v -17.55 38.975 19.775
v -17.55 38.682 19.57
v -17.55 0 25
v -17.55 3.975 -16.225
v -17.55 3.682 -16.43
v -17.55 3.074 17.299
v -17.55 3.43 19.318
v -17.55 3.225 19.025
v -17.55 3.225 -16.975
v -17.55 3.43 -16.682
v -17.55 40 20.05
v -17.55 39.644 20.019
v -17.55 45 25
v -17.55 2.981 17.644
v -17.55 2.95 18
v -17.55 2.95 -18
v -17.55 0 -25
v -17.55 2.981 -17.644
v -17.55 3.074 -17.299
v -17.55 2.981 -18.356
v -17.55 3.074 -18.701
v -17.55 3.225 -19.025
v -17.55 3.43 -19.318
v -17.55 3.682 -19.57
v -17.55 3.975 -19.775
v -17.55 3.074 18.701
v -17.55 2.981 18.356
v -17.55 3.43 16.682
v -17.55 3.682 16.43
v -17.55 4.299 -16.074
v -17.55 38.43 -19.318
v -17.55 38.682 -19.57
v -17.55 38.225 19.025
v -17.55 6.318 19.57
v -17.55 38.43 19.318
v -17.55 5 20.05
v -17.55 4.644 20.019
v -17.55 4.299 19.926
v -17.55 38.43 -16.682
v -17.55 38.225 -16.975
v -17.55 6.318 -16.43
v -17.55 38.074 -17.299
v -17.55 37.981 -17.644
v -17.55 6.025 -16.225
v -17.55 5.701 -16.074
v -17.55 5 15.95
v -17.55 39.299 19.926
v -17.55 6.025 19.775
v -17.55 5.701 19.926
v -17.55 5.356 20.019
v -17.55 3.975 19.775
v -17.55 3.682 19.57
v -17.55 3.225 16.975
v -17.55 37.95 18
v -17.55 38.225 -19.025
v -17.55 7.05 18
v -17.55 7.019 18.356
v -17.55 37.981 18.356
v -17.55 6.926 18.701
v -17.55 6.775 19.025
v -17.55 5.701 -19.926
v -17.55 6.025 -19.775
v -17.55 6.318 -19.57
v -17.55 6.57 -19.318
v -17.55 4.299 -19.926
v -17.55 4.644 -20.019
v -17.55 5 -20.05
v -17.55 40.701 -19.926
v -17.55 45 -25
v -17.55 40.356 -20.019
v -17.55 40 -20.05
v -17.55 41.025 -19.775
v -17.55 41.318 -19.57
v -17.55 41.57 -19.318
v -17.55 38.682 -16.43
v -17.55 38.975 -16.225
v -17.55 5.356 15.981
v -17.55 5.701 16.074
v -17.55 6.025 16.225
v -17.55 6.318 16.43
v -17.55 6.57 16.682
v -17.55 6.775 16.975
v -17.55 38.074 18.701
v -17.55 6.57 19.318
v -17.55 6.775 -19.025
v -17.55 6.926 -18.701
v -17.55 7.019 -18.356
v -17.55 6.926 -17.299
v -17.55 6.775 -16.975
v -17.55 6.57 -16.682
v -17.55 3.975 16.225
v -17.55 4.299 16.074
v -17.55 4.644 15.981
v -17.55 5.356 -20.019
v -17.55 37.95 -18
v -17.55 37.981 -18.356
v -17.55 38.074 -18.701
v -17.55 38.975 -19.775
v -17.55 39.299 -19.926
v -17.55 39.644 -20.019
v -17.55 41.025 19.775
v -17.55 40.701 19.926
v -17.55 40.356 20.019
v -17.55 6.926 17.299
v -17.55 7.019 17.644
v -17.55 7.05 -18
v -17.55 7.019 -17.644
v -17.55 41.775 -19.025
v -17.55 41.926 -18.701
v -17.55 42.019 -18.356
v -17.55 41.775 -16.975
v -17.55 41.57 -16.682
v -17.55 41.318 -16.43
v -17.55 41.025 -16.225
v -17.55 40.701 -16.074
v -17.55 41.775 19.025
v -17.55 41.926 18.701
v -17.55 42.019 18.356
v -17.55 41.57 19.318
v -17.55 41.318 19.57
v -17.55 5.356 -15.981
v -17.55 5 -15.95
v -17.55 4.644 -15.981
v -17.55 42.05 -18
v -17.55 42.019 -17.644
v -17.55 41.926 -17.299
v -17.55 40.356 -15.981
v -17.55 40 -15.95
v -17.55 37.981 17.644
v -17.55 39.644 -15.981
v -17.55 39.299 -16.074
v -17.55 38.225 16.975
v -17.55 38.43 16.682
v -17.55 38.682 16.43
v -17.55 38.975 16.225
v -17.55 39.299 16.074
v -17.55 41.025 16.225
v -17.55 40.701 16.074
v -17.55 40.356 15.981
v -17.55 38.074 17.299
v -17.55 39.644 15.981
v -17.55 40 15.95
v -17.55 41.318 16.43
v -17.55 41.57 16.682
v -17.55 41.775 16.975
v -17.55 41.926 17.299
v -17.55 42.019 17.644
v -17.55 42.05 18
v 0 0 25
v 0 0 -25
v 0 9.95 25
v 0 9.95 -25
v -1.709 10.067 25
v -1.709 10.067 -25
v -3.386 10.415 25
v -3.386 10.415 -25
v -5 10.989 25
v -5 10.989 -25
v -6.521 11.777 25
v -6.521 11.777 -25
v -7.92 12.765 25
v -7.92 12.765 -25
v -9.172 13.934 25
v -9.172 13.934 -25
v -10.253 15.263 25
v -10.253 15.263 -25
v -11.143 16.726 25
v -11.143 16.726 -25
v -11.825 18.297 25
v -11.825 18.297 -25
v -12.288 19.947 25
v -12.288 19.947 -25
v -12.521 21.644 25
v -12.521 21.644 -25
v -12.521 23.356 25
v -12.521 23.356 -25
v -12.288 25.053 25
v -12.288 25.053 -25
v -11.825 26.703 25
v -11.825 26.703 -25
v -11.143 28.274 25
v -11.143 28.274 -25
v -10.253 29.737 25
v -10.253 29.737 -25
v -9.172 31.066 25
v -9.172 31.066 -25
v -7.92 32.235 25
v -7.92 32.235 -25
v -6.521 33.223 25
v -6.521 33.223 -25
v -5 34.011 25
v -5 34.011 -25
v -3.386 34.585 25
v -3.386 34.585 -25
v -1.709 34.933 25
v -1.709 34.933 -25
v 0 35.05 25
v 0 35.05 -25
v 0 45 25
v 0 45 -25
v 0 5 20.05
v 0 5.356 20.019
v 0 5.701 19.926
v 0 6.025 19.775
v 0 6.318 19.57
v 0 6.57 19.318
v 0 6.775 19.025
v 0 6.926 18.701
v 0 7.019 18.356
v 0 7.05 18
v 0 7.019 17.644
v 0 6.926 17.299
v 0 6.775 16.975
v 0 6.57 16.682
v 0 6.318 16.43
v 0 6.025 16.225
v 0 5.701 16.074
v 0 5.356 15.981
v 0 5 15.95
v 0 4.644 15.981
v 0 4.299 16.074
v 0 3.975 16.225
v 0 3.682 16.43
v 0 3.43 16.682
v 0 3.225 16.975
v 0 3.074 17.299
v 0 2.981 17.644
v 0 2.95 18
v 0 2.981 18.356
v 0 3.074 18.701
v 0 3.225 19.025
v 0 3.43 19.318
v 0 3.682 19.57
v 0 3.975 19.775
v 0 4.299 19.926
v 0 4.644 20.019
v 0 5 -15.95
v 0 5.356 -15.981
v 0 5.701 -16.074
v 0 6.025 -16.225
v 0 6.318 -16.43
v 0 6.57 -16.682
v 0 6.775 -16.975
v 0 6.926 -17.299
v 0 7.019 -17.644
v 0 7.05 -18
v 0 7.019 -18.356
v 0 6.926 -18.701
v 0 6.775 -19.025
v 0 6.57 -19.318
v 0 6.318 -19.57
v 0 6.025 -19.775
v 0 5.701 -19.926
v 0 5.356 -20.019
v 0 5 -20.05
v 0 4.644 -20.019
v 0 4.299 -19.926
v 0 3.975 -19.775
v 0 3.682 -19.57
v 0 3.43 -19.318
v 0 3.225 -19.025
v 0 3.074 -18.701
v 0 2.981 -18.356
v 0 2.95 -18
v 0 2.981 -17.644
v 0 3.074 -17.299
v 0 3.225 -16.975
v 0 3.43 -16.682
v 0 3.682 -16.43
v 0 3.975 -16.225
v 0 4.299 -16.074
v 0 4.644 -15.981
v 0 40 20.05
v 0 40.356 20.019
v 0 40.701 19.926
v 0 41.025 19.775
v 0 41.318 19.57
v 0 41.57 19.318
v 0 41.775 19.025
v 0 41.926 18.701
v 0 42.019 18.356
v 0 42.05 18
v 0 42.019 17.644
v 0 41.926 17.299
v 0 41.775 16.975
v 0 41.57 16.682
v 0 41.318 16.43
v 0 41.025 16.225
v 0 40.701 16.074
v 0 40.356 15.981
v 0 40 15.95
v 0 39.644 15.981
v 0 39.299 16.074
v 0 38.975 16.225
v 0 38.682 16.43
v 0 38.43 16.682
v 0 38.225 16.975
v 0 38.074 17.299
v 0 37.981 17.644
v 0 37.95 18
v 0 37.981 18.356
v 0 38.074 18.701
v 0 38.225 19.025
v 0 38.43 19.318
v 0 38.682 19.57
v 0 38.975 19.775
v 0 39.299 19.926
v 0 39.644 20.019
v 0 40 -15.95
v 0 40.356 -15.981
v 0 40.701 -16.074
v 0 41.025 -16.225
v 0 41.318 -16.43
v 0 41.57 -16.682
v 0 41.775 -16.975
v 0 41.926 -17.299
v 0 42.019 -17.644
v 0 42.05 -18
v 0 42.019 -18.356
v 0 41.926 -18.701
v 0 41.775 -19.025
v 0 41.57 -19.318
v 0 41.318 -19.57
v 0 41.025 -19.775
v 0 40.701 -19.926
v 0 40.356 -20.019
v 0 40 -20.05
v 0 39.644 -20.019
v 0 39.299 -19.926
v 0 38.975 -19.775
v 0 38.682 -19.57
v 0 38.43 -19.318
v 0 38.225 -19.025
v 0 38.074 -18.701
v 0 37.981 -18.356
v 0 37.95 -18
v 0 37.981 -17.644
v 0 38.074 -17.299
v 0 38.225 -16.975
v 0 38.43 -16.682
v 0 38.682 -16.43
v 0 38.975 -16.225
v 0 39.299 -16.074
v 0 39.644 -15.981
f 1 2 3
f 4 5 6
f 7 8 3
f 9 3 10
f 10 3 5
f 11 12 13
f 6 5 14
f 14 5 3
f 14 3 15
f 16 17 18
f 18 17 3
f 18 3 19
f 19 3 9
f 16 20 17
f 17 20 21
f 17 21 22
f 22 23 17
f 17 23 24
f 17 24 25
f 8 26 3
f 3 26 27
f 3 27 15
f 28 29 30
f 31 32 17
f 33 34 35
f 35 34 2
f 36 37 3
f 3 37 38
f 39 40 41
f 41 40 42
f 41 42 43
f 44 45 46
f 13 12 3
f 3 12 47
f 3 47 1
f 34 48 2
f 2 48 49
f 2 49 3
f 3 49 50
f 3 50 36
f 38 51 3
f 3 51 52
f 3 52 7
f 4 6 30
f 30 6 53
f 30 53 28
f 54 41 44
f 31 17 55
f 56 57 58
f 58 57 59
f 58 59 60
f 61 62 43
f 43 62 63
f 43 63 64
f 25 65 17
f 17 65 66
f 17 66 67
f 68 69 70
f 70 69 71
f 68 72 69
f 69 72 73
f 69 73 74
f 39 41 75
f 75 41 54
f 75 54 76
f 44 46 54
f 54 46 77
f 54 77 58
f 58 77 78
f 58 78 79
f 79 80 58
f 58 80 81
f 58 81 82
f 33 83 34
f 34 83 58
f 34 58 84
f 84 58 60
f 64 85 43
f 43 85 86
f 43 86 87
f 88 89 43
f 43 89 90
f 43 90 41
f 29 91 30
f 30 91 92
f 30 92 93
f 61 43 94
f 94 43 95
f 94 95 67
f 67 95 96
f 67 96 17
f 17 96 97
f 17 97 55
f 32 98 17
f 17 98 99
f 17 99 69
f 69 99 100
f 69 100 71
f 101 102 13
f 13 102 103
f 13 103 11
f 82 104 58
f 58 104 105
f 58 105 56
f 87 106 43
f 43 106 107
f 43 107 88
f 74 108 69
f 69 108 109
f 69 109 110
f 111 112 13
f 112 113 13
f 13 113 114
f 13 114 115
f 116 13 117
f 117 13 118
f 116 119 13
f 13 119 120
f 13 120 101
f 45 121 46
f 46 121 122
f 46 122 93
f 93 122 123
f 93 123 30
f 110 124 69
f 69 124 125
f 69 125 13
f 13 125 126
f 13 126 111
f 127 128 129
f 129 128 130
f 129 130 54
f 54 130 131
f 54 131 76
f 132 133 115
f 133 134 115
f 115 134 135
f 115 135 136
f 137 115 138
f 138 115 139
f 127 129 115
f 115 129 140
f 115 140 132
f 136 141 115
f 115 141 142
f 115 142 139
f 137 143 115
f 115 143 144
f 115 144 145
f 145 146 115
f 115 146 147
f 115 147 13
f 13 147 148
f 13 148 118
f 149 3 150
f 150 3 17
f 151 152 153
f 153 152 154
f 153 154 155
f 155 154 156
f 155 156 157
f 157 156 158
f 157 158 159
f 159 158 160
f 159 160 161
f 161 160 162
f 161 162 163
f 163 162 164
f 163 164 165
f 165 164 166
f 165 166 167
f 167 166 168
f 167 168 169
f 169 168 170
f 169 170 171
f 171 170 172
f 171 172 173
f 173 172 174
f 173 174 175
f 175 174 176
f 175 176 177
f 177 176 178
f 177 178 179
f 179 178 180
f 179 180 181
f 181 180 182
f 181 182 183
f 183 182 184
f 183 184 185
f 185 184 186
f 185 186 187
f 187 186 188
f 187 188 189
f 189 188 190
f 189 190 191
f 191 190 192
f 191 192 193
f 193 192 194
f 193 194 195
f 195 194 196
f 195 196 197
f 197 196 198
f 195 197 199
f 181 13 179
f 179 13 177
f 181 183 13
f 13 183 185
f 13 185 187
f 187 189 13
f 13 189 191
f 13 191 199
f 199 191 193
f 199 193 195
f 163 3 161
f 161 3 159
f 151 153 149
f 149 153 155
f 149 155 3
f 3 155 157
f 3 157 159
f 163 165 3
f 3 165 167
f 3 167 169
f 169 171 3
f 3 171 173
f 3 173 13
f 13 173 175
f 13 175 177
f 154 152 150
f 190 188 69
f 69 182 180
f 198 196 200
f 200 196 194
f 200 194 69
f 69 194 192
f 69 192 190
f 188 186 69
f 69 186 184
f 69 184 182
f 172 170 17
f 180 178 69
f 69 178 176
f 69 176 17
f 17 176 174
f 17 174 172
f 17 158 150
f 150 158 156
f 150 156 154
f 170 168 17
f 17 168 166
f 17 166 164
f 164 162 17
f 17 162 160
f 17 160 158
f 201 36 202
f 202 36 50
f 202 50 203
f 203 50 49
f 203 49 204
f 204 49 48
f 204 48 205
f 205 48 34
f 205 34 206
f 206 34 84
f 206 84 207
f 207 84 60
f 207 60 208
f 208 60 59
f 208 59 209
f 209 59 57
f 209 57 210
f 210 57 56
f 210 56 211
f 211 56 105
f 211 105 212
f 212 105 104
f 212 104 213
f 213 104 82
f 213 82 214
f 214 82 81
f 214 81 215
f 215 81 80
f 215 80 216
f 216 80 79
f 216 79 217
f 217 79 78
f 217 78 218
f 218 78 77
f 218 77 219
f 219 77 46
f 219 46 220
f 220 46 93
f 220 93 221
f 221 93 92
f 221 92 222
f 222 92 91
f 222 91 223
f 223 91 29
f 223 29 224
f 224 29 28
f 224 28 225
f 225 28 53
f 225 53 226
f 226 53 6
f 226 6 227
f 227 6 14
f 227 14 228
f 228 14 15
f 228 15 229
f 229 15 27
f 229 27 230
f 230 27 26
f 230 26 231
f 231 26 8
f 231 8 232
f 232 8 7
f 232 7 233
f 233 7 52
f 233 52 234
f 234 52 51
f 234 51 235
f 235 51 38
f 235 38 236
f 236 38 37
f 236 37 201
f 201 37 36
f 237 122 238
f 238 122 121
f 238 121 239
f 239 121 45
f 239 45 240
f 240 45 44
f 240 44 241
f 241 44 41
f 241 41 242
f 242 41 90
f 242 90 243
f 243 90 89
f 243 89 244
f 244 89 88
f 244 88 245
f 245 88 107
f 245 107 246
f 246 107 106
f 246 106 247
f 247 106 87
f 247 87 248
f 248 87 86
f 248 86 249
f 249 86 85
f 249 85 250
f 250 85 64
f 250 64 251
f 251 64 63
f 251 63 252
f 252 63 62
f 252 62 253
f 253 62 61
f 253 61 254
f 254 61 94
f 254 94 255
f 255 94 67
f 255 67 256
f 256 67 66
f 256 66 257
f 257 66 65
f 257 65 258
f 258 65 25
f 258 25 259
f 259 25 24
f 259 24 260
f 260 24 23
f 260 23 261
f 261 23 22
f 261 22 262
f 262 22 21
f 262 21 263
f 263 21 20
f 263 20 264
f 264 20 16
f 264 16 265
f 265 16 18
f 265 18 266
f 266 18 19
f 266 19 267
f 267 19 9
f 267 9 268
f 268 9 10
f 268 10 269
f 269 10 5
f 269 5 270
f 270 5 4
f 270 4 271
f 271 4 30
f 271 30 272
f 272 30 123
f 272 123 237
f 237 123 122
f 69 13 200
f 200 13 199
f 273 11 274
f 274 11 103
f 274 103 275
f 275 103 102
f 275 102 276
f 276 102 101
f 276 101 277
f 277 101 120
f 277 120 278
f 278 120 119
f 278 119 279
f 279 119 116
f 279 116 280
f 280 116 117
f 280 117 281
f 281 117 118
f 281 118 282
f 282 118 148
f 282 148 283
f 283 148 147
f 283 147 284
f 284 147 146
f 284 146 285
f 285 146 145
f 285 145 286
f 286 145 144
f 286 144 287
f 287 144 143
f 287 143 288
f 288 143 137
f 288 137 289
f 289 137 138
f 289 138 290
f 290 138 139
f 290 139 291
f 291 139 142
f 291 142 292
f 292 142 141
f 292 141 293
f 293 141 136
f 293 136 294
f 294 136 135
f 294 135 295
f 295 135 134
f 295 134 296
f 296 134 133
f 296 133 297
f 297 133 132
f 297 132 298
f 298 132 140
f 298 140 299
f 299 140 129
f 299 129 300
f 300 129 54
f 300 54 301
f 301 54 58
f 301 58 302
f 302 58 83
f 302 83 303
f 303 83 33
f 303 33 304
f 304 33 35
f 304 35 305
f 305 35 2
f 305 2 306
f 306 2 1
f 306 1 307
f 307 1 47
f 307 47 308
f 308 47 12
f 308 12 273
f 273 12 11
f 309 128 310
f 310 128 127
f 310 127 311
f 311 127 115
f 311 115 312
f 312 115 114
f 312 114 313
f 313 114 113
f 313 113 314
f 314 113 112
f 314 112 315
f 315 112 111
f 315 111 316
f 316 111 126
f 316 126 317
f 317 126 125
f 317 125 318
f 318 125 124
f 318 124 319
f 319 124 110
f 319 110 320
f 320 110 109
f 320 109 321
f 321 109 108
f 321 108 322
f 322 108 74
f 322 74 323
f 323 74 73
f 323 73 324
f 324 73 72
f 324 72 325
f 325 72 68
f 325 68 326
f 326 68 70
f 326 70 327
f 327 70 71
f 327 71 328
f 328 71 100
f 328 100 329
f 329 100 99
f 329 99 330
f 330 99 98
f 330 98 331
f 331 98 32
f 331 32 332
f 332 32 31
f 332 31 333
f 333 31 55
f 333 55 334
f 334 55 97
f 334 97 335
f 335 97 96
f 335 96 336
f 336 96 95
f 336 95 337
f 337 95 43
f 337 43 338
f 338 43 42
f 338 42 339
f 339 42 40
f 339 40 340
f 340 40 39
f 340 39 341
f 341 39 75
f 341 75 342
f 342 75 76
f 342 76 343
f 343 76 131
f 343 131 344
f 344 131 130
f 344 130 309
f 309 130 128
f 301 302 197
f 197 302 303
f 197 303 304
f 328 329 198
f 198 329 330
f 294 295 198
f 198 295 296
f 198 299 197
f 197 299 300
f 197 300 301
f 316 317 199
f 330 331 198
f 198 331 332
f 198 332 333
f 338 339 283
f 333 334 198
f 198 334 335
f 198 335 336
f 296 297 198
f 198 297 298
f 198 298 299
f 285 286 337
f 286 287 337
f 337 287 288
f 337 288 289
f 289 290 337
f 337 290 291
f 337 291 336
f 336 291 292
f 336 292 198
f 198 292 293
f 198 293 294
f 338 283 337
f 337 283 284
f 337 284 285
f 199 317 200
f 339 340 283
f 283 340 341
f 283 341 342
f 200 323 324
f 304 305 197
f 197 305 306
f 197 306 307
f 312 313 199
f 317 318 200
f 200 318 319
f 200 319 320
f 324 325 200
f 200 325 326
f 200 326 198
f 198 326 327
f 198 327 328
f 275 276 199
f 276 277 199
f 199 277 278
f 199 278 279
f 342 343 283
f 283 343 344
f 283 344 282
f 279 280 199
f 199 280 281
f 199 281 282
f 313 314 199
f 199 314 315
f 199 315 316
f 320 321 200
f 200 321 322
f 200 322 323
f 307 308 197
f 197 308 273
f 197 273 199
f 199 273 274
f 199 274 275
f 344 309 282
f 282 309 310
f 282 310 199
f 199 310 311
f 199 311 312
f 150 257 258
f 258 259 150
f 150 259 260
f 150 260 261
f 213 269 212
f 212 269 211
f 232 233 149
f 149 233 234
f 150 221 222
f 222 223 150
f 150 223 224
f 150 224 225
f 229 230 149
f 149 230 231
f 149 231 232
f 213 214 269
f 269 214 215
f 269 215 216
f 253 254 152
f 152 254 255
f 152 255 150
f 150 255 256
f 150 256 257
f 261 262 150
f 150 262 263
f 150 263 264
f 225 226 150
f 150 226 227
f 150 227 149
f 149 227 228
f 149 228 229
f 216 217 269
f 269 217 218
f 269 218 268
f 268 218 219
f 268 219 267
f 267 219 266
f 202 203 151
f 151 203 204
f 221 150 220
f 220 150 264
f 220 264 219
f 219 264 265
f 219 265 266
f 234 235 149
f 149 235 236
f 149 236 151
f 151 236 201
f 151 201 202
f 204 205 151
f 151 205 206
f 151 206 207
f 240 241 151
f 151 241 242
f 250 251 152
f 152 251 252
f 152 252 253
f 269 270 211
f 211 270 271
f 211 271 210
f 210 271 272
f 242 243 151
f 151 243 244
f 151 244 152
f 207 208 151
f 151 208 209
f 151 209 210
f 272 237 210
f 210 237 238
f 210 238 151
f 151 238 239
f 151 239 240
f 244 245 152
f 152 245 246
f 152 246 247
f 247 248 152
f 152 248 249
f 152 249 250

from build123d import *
from build123d.topology import SkipClean

# Parameters (mm, degrees)
BOSS_EXTRUDE1_DEPTH             = 25
BOSS_EXTRUDE2_REACH             = 65.436
BOSS_EXTRUDE2_DIRECTION_2_DEPTH = 30
SKETCH9_R                       = 2.05
CUT_EXTRUDE3_DEPTH              = 35.1
BOSS_EXTRUDE5_REACH             = 63.632
SKETCH13_R                      = 1.55
CUT_EXTRUDE4_DEPTH              = 88.768186926
SKETCH16_W                      = 63
SKETCH16_H                      = 45
CUT_EXTRUDE5_DEPTH              = 65.271143


with BuildPart() as part:
    # Sketch1 → Boss-Extrude1 (new, symmetric)
    with BuildSketch(Plane.XY):
        with BuildLine():
            Line((-17.55, 22.5), (-17.55, 0))
            Line((-17.55, 0), (17.55, 0))
            Line((17.55, 0), (17.55, 22.5))
            Line((17.55, 22.5), (12.55, 22.5))
            ThreePointArc((12.55, 22.5), (0, 9.95), (-12.55, 22.5))
            Line((-12.55, 22.5), (-17.55, 22.5))
        make_face()
    boss_extrude1 = extrude(amount=BOSS_EXTRUDE1_DEPTH, both=True)

    # Boss-Extrude2: up to this face of the body (flat: up to its plane)
    boss_extrude2_end = Plane(part.part.faces().sort_by_distance((17.55, 11.25, 0))[0])
    # Sketch5 → Boss-Extrude2 (add, up to the picked face)
    with BuildSketch(Plane(origin=(26.152881057, 0, 15.099372918), x_dir=(0.500000000000001, 0, -0.8660254037844382), z_dir=(0.8660254037844382, 0, 0.500000000000001)), mode=Mode.PRIVATE) as boss_extrude2_sk1:
        with BuildLine():
            Line((-8.725, 22.5), (-3.775, 22.5))
            ThreePointArc((-3.775, 22.5), (8.775, 9.95), (21.325, 22.5))
            Line((21.325, 22.5), (26.275, 22.5))
            ThreePointArc((26.275, 22.5), (8.775, 5), (-8.725, 22.5))
        make_face()
    boss_extrude2_tool1 = split(extrude(boss_extrude2_sk1.sketch, amount=-BOSS_EXTRUDE2_REACH, mode=Mode.PRIVATE), bisect_by=boss_extrude2_end, keep=Keep.BOTH, mode=Mode.PRIVATE)
    boss_extrude2 = boss_extrude2_tool1.solids().sort_by(Axis((23.027881, 22.108688, 20.512032), (-0.8660254037844382, 0, -0.500000000000001)))[0]
    add(boss_extrude2)

    # Sketch5 → Boss-Extrude2 direction 2 (add)
    with BuildSketch(Plane(origin=(26.152881057, 0, 15.099372918), x_dir=(0.500000000000001, 0, -0.8660254037844382), z_dir=(0.8660254037844382, 0, 0.500000000000001))):
        with BuildLine():
            Line((-8.725, 22.5), (-3.775, 22.5))
            ThreePointArc((-3.775, 22.5), (8.775, 9.95), (21.325, 22.5))
            Line((21.325, 22.5), (26.275, 22.5))
            ThreePointArc((26.275, 22.5), (8.775, 5), (-8.725, 22.5))
        make_face()
    boss_extrude2_direction_2 = extrude(amount=BOSS_EXTRUDE2_DIRECTION_2_DEPTH)

    # Sketch9 → Cut-Extrude3 (cut)
    with BuildSketch(Plane.ZY.offset(17.55)):
        with Locations((-18, 5)):
            Circle(SKETCH9_R)
        with Locations((18, 5)):
            Circle(SKETCH9_R)
    cut_extrude3 = extrude(amount=-CUT_EXTRUDE3_DEPTH, mode=Mode.SUBTRACT)

    # Boss-Extrude5: up to this face of the body (flat: up to its plane)
    boss_extrude5_end = Plane(part.part.faces().sort_by_distance((17.55, 17.173614571, 0))[0])
    # Sketch12 → Boss-Extrude5 (add, up to the picked face)
    with BuildSketch(Plane(origin=(22.035576211, 0, 12.722245857), x_dir=(0.4999999999999999, 0, -0.8660254037844388), z_dir=(0.8660254037844388, 0, 0.4999999999999999)), mode=Mode.PRIVATE) as boss_extrude5_sk1:
        with BuildLine():
            Line((-3.775, 22.5), (21.325, 22.5))
            ThreePointArc((21.325, 22.5), (8.775, 9.95), (-3.775, 22.5))
        make_face()
    boss_extrude5_tool1 = split(extrude(boss_extrude5_sk1.sketch, amount=-BOSS_EXTRUDE5_REACH, mode=Mode.PRIVATE), bisect_by=boss_extrude5_end, keep=Keep.BOTH, mode=Mode.PRIVATE)
    boss_extrude5 = boss_extrude5_tool1.solids().sort_by(Axis((26.423076, 17.173615, 5.122873), (-0.8660254037844388, 0, -0.4999999999999999)))[0]
    add(boss_extrude5)


with BuildPart() as mirror1_1:
    # Mirror1: Boss-Extrude1, Boss-Extrude2, Boss-Extrude2 direction 2 across plane
    add(boss_extrude1.mirror(Plane(origin=(17.55, 22.5, 25), x_dir=(0, 0, 1), z_dir=(0, -1, 0))))
    add(boss_extrude2.mirror(Plane(origin=(17.55, 22.5, 25), x_dir=(0, 0, 1), z_dir=(0, -1, 0))))
    add(boss_extrude2_direction_2.mirror(Plane(origin=(17.55, 22.5, 25), x_dir=(0, 0, 1), z_dir=(0, -1, 0))))

    # Mirror1 2: Cut-Extrude3 across plane
    add(cut_extrude3.mirror(Plane(origin=(17.55, 22.5, 25), x_dir=(0, 0, 1), z_dir=(0, -1, 0))), mode=Mode.SUBTRACT)


with BuildPart() as mirror1_3_1:
    # Mirror1 3: Boss-Extrude5 across plane
    add(boss_extrude5.mirror(Plane(origin=(17.55, 22.5, 25), x_dir=(0, 0, 1), z_dir=(0, -1, 0))))


with BuildPart() as part_1:
    add(part.part)

    # Mirror1 united with what the copies touc: union Mirror1_1, Mirror1 3_1
    add(mirror1_1.part)
    add(mirror1_3_1.part)

    # Sketch13 → Cut-Extrude4 (cut, through all)
    with SkipClean():  # the faces are left unmerged after this step: merging them gives an invalid solid
        with BuildSketch(Plane(origin=(0, 0, 0), x_dir=(1, 0, 0), z_dir=(0, 1, 0))):
            with Locations(Location((43.530762114, -15, 0), (0, 0, 90))):
                Circle(SKETCH13_R)
        extrude(amount=CUT_EXTRUDE4_DEPTH, mode=Mode.SUBTRACT)

    # Sketch16 → Cut-Extrude5 (cut)
    with BuildSketch(Plane(origin=(0, 0, 0), x_dir=(0, 0, -1), z_dir=(1, 0, 0))):
        with Locations((-6.5, 22.5)):
            Rectangle(SKETCH16_W, SKETCH16_H)
    extrude(amount=CUT_EXTRUDE5_DEPTH, mode=Mode.SUBTRACT)


solid = part_1.part
